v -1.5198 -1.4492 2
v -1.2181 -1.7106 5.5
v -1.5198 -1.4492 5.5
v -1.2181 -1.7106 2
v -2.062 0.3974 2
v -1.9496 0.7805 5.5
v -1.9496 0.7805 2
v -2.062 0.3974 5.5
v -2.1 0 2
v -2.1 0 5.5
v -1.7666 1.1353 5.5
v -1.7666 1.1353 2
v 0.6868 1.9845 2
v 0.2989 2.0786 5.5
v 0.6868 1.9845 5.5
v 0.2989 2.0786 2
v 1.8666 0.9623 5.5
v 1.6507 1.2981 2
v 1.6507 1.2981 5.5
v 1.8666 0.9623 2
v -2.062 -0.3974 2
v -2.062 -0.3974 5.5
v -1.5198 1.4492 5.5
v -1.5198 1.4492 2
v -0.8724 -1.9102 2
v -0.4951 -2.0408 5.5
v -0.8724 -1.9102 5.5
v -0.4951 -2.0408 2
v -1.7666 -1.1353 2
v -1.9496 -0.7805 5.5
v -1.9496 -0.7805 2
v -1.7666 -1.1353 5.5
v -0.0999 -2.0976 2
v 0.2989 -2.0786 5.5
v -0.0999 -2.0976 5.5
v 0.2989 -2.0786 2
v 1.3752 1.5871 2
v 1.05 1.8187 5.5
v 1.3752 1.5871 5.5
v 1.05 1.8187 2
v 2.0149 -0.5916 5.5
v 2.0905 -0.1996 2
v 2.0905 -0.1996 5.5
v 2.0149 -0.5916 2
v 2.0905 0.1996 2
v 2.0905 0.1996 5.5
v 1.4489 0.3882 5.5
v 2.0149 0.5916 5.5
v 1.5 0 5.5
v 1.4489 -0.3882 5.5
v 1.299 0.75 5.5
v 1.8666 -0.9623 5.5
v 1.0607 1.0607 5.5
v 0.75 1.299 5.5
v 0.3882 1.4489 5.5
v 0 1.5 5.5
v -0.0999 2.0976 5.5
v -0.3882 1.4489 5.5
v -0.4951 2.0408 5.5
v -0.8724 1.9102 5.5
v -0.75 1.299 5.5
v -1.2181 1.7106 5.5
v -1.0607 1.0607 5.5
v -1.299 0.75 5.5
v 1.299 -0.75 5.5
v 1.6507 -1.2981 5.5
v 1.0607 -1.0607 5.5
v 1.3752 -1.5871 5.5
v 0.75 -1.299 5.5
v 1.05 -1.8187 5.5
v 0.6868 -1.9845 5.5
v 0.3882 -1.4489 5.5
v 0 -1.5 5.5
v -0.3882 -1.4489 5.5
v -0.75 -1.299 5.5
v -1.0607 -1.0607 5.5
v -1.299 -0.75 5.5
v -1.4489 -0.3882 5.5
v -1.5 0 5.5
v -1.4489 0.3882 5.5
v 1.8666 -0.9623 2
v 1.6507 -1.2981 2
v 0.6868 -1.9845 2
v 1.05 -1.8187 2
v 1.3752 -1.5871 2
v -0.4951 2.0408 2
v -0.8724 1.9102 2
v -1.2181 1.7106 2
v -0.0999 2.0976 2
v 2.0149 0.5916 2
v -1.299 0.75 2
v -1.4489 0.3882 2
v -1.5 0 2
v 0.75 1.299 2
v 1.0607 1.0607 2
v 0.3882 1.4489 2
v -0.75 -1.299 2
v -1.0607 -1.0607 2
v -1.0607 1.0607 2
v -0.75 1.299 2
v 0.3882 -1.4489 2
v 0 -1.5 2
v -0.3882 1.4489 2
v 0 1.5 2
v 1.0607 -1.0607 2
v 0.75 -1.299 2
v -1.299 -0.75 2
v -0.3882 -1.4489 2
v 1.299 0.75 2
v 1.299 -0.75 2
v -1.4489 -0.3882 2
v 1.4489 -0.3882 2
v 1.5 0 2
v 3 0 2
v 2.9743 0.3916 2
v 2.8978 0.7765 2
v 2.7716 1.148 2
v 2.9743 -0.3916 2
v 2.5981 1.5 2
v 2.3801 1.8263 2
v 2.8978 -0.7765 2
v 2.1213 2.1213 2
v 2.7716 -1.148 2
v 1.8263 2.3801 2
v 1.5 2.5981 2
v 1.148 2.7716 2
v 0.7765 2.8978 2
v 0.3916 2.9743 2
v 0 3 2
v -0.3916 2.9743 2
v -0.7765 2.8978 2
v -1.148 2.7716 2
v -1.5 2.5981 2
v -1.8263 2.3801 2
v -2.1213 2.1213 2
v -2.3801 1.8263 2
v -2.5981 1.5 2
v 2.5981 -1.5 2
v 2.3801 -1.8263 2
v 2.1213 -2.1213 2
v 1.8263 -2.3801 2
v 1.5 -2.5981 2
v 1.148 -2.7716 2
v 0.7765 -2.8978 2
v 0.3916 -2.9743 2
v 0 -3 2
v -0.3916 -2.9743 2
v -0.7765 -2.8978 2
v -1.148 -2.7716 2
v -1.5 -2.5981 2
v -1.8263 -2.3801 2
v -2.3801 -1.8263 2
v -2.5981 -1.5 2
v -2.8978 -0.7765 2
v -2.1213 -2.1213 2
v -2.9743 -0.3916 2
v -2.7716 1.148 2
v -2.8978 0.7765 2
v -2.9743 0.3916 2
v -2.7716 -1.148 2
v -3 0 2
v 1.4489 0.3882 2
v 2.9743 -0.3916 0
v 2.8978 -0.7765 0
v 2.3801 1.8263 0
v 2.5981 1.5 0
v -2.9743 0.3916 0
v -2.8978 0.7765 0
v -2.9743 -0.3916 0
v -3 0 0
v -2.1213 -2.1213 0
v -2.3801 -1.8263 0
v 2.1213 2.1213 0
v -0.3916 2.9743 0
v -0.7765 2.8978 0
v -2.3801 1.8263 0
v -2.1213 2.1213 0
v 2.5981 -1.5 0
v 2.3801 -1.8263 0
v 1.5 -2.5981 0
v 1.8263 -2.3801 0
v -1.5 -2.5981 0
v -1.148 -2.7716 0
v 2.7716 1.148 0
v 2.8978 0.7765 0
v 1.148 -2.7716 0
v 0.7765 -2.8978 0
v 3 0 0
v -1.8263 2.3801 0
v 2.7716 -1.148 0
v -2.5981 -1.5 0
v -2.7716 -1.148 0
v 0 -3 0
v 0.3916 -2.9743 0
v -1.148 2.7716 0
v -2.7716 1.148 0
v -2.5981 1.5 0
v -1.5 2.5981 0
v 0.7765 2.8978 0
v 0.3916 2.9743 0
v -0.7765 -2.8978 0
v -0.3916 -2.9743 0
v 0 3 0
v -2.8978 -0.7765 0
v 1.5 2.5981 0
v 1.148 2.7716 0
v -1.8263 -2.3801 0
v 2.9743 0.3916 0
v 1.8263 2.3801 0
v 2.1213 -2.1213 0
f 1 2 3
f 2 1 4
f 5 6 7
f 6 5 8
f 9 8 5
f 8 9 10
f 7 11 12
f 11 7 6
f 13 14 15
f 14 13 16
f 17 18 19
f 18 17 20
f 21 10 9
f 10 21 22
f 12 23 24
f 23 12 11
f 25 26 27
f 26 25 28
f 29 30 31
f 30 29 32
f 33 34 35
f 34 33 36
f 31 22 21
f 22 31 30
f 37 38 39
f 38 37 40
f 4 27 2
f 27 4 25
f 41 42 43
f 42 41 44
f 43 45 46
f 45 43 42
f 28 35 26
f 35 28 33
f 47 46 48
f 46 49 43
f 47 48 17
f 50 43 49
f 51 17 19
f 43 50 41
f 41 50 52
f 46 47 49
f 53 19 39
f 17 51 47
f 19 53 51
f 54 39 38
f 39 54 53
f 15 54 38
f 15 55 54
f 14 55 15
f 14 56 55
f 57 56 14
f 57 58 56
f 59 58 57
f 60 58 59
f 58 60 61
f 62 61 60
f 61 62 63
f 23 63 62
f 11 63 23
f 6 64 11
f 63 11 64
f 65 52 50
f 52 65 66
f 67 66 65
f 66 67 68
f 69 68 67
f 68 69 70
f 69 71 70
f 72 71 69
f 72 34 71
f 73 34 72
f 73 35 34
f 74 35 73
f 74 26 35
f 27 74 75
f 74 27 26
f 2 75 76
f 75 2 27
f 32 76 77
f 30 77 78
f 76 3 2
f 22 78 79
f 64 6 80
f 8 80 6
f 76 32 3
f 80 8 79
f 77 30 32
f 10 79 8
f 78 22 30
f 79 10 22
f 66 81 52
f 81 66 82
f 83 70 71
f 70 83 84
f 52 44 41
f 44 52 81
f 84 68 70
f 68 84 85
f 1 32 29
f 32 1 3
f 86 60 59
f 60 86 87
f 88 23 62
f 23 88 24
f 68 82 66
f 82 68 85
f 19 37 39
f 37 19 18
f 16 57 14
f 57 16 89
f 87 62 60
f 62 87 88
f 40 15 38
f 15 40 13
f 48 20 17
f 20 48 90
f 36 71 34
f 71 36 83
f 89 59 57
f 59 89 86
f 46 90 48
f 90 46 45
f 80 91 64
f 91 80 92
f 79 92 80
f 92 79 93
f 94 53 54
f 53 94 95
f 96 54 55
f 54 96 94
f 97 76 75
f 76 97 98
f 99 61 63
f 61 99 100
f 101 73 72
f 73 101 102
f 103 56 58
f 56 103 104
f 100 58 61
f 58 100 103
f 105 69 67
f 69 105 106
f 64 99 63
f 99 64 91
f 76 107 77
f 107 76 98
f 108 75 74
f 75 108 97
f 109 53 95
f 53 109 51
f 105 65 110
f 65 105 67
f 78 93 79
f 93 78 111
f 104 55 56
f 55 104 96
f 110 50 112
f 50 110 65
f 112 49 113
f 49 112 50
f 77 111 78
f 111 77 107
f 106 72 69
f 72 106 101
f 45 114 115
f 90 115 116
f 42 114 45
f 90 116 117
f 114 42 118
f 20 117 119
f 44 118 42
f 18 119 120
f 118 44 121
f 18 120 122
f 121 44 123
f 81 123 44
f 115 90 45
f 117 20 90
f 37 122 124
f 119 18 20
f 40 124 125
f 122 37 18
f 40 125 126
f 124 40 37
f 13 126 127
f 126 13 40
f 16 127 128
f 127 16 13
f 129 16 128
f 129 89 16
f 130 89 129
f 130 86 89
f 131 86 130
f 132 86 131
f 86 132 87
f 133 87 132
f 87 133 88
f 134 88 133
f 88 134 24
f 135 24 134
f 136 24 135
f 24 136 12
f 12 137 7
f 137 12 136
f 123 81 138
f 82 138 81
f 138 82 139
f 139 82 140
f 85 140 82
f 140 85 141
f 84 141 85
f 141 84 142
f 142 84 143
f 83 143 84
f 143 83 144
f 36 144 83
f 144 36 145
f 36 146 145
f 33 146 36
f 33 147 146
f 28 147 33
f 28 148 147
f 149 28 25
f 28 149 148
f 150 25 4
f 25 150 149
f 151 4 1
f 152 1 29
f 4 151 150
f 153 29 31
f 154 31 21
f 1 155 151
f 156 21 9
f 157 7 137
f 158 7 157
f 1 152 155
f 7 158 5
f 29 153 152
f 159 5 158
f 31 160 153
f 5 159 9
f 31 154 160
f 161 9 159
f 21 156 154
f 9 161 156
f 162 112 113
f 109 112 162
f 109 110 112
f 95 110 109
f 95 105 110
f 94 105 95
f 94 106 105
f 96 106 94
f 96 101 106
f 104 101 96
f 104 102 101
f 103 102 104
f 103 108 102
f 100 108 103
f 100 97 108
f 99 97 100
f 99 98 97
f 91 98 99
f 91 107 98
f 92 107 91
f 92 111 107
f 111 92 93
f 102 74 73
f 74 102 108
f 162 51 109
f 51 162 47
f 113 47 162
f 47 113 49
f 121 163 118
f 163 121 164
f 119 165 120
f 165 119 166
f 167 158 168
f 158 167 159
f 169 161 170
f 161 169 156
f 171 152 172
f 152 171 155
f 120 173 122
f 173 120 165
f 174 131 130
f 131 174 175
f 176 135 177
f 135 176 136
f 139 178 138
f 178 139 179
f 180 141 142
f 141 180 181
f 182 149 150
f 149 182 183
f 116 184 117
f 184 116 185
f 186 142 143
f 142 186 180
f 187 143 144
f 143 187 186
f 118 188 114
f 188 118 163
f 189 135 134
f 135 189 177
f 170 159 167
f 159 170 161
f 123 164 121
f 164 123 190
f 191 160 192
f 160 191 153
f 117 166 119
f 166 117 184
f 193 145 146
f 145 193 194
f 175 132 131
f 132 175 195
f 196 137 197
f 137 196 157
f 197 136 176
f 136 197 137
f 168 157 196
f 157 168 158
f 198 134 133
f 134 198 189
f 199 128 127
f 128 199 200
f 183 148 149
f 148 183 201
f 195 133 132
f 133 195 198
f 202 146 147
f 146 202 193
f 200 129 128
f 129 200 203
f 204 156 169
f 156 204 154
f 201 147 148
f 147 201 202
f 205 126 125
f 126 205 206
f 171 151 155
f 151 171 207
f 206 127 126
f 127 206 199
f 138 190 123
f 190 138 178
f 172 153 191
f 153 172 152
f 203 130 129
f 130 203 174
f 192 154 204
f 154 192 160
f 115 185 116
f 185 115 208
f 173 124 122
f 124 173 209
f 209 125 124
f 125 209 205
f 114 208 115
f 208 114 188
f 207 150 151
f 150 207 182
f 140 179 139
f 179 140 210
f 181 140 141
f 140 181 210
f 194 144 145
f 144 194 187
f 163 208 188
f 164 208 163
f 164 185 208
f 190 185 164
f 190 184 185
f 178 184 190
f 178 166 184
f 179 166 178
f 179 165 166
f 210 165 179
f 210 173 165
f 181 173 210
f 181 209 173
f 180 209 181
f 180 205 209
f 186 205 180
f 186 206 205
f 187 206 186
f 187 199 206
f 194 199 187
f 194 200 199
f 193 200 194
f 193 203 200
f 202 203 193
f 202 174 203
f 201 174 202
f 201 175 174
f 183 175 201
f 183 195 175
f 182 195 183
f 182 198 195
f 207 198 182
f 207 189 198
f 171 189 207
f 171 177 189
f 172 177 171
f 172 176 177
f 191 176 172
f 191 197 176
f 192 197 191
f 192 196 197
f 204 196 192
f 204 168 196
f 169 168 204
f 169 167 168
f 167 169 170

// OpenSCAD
// Makes the preview renders look better.
$fa = 1;
$fs = 0.4;

rotate([0, 180, 0]) {
    translate([0, 0, -3]) {
        difference() {
            cylinder(h = 5, r = 2.1, center = true);
            translate([0, 0, -4]) cylinder(h = 10, r = 1.5, center = true);
        }
    }

    translate([0, 0, -1]) {
        cylinder(h = 2, r = 3, center = true);
    }
}
